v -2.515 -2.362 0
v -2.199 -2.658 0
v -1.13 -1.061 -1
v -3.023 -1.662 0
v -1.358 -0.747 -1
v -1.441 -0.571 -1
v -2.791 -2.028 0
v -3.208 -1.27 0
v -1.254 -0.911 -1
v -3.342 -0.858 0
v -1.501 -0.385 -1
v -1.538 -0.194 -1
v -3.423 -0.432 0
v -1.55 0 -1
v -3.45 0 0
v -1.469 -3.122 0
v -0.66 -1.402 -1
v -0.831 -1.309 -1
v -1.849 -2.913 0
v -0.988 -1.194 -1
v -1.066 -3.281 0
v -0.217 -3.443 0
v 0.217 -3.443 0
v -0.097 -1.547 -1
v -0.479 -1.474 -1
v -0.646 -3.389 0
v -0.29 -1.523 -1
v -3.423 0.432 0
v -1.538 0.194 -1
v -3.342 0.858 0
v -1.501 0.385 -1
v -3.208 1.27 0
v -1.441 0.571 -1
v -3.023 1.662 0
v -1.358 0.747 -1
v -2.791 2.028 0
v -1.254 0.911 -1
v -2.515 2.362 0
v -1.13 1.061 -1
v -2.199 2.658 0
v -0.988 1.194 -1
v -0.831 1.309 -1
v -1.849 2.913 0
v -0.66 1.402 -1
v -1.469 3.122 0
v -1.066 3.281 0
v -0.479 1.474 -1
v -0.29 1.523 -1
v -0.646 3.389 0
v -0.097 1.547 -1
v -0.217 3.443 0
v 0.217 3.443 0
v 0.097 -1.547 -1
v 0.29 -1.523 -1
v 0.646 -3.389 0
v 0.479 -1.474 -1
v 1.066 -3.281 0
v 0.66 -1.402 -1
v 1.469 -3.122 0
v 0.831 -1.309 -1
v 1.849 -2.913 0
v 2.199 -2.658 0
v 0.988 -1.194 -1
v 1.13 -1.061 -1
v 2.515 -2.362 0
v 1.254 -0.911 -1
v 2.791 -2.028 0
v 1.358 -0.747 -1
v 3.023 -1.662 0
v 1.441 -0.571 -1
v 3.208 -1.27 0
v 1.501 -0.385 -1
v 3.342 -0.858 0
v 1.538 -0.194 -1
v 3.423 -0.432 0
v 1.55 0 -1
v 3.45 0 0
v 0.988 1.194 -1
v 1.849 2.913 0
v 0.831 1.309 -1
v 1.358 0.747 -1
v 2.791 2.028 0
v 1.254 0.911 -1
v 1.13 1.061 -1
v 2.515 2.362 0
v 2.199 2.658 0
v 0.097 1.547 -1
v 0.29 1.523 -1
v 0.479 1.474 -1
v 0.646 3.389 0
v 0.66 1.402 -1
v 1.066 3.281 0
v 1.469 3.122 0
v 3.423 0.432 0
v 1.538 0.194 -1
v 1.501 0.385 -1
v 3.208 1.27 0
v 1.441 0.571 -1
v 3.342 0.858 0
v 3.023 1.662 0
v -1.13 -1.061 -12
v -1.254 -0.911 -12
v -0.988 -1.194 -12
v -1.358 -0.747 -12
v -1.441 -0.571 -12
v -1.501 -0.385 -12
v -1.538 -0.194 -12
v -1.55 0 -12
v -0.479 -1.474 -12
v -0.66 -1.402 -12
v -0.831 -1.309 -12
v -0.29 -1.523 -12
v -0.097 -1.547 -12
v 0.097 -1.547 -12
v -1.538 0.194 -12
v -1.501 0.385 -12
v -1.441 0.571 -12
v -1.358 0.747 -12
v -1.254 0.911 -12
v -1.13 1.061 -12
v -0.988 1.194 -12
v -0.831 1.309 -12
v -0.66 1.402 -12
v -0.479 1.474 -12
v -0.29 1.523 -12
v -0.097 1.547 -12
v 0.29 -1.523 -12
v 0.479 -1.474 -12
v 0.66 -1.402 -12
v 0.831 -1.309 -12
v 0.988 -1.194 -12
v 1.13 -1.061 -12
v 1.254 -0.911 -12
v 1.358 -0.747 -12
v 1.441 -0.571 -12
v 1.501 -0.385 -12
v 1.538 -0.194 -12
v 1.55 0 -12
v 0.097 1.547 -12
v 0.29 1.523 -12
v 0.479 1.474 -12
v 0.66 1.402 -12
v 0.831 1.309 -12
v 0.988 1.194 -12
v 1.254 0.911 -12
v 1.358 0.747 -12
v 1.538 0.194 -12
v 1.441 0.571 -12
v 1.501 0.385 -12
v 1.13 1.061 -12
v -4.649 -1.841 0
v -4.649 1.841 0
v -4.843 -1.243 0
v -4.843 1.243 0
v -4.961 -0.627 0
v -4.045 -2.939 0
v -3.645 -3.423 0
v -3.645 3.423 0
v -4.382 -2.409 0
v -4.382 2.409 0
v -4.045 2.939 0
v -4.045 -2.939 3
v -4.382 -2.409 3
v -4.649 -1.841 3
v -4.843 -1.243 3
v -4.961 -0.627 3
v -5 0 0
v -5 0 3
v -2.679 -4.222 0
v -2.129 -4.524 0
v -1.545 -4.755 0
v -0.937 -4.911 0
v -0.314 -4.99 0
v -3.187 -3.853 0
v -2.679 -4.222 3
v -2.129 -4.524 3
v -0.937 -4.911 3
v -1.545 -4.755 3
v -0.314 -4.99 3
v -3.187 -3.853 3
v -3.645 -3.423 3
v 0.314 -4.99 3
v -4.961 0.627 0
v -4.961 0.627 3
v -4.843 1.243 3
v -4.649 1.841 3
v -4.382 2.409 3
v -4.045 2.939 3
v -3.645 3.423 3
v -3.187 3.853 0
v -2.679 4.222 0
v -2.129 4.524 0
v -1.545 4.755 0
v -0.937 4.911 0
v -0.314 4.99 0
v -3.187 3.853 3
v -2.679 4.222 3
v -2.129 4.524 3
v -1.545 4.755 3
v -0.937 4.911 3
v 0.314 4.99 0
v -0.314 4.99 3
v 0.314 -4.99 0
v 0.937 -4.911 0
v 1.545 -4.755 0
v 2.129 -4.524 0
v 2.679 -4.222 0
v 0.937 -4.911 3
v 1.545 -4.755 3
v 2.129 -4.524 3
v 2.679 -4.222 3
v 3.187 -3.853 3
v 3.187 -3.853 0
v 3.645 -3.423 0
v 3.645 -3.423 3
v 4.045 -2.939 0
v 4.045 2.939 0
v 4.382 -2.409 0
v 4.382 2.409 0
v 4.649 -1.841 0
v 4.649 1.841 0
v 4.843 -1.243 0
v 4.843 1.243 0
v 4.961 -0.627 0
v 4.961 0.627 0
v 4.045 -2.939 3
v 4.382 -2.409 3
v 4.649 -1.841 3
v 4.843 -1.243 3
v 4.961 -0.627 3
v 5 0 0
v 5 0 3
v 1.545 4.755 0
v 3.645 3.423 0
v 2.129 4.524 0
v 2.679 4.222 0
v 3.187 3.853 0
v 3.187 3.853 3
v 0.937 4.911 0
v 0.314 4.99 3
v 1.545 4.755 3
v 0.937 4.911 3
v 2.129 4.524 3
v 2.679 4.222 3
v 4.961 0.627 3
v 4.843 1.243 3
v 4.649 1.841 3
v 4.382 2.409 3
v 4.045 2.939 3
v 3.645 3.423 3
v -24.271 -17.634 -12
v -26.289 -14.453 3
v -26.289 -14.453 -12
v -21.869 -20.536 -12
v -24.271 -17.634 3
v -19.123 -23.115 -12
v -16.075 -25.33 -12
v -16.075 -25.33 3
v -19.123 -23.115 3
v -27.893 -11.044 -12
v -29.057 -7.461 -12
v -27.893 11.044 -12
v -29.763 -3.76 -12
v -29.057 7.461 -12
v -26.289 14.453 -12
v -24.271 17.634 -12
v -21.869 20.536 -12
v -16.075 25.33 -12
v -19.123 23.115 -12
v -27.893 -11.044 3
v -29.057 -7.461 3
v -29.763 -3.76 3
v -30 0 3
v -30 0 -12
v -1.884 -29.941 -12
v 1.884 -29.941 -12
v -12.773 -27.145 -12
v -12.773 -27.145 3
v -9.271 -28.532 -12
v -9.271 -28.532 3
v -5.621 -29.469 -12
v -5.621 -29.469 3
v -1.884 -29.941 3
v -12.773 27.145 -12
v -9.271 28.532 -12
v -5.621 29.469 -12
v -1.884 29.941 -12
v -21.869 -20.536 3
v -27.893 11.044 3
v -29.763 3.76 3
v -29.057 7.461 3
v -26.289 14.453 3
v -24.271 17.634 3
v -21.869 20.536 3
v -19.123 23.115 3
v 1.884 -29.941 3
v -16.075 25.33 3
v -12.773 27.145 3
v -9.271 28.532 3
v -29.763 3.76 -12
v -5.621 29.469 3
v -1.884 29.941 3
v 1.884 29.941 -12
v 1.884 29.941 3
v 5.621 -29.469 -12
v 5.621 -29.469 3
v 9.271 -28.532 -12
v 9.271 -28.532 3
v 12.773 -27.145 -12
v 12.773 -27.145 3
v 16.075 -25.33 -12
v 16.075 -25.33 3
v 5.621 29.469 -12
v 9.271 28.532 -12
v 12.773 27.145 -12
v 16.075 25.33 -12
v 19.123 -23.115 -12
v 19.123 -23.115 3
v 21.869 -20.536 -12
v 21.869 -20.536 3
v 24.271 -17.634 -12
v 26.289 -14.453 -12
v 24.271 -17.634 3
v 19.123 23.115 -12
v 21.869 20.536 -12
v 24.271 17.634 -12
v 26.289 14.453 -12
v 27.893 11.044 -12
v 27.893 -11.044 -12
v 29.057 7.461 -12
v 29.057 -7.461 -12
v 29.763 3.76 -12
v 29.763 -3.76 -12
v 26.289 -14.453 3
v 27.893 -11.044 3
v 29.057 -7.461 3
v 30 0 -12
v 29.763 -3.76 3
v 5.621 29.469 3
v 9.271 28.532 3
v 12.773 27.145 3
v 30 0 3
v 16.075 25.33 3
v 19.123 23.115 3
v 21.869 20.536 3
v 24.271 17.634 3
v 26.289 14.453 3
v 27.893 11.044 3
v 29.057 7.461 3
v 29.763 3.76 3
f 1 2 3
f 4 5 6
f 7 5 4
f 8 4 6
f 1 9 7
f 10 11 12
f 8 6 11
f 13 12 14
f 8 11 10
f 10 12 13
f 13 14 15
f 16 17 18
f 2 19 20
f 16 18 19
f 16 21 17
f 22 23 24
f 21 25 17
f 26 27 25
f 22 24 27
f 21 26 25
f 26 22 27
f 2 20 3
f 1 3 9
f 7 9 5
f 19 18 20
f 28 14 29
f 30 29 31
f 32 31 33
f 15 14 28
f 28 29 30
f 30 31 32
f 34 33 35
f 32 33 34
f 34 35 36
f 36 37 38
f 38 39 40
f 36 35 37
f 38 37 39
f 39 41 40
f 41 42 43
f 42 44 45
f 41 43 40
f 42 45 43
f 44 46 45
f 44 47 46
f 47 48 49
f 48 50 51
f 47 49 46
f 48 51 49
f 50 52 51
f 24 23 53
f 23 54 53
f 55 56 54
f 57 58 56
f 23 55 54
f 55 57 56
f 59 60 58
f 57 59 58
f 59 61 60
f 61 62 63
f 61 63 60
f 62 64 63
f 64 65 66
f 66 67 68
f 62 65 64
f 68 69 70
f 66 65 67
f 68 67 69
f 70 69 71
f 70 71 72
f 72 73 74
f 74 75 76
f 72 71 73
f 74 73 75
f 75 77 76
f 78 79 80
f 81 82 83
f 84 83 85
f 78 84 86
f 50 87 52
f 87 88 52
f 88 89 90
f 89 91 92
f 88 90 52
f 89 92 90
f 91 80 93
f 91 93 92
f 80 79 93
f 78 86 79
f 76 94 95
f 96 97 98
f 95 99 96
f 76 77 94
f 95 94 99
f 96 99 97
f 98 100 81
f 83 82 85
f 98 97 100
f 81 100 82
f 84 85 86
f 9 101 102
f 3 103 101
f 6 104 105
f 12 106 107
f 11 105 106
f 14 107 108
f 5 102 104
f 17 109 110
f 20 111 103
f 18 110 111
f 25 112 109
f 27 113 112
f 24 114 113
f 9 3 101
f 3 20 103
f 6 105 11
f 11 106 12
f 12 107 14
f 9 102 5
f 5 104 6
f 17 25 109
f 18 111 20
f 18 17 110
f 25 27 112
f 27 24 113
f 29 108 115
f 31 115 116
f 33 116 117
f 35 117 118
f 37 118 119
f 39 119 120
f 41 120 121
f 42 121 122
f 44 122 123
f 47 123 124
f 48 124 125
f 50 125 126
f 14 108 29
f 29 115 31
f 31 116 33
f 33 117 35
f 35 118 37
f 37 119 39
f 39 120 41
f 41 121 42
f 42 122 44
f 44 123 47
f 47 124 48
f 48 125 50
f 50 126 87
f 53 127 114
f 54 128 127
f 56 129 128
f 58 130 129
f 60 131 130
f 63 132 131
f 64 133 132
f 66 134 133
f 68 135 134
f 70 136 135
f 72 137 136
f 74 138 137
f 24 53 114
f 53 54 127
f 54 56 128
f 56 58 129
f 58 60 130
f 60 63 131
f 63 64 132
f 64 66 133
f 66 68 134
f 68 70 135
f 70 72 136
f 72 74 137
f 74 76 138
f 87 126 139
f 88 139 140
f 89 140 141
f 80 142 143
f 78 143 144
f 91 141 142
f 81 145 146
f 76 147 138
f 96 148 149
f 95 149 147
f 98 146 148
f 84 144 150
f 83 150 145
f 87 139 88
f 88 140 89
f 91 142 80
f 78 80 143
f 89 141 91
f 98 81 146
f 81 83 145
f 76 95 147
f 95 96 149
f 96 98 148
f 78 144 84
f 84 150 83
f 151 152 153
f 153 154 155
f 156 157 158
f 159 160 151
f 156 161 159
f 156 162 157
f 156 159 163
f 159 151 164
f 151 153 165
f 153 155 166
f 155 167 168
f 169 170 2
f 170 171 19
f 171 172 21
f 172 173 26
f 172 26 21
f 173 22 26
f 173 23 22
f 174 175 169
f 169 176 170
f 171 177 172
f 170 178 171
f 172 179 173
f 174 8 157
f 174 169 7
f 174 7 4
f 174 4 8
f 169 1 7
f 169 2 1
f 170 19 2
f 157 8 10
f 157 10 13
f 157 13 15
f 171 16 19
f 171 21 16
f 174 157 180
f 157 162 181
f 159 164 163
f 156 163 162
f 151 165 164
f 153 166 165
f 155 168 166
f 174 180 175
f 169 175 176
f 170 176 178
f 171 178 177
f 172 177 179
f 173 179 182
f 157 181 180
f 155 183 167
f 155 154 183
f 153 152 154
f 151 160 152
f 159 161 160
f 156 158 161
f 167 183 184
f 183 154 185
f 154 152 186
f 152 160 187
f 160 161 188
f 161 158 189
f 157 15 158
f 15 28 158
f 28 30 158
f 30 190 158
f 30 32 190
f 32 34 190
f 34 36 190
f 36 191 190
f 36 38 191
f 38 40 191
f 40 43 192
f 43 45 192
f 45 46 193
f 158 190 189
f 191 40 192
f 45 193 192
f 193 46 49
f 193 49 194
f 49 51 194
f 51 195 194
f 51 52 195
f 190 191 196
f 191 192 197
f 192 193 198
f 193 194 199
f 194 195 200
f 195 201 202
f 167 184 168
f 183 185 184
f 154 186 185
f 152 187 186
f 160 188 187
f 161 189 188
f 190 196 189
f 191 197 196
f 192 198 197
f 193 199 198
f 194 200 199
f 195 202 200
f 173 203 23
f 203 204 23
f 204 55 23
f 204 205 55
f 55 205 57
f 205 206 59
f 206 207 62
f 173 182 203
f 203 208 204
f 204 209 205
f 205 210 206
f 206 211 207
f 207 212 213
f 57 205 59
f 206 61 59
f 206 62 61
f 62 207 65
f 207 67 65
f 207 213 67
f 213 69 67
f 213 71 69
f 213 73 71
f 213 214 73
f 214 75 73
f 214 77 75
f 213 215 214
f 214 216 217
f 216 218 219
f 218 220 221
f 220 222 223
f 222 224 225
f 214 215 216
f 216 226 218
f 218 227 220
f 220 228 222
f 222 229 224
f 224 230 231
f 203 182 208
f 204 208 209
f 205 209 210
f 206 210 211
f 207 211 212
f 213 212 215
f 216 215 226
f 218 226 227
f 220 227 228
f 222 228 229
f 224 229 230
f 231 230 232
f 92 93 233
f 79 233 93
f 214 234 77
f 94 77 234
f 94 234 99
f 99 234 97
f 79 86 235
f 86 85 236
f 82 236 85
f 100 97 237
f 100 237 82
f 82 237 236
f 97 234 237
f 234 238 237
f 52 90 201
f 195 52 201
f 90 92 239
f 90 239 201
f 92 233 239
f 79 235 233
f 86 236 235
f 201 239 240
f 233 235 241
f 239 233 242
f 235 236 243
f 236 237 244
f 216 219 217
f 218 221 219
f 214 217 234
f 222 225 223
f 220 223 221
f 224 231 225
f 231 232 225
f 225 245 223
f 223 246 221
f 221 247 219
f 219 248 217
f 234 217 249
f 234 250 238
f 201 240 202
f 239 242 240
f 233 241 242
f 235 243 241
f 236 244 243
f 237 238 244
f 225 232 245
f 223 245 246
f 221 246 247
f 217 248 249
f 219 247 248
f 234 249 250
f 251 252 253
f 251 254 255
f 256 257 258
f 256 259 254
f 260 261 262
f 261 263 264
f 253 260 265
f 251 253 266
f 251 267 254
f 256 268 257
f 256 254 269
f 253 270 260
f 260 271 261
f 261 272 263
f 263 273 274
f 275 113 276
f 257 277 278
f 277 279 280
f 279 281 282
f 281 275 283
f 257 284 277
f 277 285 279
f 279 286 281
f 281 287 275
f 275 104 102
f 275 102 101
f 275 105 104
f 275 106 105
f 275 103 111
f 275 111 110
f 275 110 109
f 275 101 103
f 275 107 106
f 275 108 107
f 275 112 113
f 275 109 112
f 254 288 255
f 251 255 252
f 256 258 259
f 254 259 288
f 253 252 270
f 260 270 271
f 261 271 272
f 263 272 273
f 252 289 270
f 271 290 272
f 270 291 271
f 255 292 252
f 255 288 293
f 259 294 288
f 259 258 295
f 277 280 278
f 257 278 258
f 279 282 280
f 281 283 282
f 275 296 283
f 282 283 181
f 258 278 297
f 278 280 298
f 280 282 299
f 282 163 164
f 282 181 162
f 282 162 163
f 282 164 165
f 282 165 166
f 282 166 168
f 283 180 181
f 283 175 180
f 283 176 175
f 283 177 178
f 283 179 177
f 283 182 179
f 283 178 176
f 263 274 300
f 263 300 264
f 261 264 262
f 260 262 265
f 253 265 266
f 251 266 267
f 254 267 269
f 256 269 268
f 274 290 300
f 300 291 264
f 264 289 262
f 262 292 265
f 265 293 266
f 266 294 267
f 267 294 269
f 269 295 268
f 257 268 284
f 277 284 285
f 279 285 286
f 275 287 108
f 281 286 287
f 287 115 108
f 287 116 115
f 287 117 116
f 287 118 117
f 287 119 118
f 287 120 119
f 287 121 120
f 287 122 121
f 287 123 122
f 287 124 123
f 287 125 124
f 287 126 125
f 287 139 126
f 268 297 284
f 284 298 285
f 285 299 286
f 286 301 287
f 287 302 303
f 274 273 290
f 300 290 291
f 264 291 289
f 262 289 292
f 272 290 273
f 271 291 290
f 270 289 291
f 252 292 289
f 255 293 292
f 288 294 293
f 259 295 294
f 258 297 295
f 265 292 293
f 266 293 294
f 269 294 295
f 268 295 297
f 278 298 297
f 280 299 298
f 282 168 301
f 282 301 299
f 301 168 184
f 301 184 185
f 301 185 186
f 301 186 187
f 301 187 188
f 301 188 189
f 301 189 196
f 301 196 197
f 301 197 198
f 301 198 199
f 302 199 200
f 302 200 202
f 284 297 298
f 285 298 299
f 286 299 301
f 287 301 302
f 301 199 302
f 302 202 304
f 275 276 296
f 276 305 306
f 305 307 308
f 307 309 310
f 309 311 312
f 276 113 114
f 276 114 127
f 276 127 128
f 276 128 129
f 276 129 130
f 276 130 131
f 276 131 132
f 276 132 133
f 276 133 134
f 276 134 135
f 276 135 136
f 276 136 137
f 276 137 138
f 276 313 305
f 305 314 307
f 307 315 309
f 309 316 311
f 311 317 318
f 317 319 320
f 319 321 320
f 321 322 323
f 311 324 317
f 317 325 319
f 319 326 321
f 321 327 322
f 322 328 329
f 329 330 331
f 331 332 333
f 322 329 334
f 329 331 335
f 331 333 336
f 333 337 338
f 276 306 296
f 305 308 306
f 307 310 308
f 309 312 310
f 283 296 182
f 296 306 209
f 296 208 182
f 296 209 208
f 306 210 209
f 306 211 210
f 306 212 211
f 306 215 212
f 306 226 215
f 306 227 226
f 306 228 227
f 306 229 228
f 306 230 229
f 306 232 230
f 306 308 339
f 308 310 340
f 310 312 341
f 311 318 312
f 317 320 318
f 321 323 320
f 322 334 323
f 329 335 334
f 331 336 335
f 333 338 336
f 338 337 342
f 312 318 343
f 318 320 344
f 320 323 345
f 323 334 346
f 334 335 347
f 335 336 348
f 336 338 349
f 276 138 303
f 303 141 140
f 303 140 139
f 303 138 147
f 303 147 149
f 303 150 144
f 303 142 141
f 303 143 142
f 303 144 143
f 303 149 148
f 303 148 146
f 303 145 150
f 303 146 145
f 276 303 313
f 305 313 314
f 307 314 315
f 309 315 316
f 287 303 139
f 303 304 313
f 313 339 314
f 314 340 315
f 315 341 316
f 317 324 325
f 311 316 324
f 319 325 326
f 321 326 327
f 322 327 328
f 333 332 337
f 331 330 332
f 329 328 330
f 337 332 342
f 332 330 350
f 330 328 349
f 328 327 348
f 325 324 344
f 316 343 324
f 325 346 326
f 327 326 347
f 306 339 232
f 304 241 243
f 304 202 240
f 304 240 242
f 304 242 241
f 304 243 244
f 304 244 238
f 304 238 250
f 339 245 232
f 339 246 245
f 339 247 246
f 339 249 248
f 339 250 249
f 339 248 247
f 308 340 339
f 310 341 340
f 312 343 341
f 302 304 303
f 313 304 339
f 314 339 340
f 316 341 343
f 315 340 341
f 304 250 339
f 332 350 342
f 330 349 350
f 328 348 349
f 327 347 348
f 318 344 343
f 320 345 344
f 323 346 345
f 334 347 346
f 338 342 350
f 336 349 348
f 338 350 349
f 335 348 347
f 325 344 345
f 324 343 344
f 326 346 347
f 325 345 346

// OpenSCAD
$fn = 50;

difference() {
	union() {
		translate(v = [0, 0, -12.0]) {
			cylinder(h = 15, r = 30.0);
		}
	}
	union() {
		translate(v = [0, 0, 0]) {
			rotate(a = [0, 0, 0]) {
				difference() {
					union() {
						translate(v = [0, 0, -15.0]) {
							cylinder(h = 15, r = 1.25);
						}
						translate(v = [0, 0, -1.0]) {
							cylinder(h = 1.0, r1 = 1.55, r2 = 3.45);
						}
						translate(v = [0, 0, -15.0]) {
							cylinder(h = 15, r = 1.55);
						}
						translate(v = [0, 0, -15.0]) {
							cylinder(h = 15, r = 1.25);
						}
					}
					union();
				}
			}
		}
		#cylinder(h = 3, r = 5.0);
	}
}
